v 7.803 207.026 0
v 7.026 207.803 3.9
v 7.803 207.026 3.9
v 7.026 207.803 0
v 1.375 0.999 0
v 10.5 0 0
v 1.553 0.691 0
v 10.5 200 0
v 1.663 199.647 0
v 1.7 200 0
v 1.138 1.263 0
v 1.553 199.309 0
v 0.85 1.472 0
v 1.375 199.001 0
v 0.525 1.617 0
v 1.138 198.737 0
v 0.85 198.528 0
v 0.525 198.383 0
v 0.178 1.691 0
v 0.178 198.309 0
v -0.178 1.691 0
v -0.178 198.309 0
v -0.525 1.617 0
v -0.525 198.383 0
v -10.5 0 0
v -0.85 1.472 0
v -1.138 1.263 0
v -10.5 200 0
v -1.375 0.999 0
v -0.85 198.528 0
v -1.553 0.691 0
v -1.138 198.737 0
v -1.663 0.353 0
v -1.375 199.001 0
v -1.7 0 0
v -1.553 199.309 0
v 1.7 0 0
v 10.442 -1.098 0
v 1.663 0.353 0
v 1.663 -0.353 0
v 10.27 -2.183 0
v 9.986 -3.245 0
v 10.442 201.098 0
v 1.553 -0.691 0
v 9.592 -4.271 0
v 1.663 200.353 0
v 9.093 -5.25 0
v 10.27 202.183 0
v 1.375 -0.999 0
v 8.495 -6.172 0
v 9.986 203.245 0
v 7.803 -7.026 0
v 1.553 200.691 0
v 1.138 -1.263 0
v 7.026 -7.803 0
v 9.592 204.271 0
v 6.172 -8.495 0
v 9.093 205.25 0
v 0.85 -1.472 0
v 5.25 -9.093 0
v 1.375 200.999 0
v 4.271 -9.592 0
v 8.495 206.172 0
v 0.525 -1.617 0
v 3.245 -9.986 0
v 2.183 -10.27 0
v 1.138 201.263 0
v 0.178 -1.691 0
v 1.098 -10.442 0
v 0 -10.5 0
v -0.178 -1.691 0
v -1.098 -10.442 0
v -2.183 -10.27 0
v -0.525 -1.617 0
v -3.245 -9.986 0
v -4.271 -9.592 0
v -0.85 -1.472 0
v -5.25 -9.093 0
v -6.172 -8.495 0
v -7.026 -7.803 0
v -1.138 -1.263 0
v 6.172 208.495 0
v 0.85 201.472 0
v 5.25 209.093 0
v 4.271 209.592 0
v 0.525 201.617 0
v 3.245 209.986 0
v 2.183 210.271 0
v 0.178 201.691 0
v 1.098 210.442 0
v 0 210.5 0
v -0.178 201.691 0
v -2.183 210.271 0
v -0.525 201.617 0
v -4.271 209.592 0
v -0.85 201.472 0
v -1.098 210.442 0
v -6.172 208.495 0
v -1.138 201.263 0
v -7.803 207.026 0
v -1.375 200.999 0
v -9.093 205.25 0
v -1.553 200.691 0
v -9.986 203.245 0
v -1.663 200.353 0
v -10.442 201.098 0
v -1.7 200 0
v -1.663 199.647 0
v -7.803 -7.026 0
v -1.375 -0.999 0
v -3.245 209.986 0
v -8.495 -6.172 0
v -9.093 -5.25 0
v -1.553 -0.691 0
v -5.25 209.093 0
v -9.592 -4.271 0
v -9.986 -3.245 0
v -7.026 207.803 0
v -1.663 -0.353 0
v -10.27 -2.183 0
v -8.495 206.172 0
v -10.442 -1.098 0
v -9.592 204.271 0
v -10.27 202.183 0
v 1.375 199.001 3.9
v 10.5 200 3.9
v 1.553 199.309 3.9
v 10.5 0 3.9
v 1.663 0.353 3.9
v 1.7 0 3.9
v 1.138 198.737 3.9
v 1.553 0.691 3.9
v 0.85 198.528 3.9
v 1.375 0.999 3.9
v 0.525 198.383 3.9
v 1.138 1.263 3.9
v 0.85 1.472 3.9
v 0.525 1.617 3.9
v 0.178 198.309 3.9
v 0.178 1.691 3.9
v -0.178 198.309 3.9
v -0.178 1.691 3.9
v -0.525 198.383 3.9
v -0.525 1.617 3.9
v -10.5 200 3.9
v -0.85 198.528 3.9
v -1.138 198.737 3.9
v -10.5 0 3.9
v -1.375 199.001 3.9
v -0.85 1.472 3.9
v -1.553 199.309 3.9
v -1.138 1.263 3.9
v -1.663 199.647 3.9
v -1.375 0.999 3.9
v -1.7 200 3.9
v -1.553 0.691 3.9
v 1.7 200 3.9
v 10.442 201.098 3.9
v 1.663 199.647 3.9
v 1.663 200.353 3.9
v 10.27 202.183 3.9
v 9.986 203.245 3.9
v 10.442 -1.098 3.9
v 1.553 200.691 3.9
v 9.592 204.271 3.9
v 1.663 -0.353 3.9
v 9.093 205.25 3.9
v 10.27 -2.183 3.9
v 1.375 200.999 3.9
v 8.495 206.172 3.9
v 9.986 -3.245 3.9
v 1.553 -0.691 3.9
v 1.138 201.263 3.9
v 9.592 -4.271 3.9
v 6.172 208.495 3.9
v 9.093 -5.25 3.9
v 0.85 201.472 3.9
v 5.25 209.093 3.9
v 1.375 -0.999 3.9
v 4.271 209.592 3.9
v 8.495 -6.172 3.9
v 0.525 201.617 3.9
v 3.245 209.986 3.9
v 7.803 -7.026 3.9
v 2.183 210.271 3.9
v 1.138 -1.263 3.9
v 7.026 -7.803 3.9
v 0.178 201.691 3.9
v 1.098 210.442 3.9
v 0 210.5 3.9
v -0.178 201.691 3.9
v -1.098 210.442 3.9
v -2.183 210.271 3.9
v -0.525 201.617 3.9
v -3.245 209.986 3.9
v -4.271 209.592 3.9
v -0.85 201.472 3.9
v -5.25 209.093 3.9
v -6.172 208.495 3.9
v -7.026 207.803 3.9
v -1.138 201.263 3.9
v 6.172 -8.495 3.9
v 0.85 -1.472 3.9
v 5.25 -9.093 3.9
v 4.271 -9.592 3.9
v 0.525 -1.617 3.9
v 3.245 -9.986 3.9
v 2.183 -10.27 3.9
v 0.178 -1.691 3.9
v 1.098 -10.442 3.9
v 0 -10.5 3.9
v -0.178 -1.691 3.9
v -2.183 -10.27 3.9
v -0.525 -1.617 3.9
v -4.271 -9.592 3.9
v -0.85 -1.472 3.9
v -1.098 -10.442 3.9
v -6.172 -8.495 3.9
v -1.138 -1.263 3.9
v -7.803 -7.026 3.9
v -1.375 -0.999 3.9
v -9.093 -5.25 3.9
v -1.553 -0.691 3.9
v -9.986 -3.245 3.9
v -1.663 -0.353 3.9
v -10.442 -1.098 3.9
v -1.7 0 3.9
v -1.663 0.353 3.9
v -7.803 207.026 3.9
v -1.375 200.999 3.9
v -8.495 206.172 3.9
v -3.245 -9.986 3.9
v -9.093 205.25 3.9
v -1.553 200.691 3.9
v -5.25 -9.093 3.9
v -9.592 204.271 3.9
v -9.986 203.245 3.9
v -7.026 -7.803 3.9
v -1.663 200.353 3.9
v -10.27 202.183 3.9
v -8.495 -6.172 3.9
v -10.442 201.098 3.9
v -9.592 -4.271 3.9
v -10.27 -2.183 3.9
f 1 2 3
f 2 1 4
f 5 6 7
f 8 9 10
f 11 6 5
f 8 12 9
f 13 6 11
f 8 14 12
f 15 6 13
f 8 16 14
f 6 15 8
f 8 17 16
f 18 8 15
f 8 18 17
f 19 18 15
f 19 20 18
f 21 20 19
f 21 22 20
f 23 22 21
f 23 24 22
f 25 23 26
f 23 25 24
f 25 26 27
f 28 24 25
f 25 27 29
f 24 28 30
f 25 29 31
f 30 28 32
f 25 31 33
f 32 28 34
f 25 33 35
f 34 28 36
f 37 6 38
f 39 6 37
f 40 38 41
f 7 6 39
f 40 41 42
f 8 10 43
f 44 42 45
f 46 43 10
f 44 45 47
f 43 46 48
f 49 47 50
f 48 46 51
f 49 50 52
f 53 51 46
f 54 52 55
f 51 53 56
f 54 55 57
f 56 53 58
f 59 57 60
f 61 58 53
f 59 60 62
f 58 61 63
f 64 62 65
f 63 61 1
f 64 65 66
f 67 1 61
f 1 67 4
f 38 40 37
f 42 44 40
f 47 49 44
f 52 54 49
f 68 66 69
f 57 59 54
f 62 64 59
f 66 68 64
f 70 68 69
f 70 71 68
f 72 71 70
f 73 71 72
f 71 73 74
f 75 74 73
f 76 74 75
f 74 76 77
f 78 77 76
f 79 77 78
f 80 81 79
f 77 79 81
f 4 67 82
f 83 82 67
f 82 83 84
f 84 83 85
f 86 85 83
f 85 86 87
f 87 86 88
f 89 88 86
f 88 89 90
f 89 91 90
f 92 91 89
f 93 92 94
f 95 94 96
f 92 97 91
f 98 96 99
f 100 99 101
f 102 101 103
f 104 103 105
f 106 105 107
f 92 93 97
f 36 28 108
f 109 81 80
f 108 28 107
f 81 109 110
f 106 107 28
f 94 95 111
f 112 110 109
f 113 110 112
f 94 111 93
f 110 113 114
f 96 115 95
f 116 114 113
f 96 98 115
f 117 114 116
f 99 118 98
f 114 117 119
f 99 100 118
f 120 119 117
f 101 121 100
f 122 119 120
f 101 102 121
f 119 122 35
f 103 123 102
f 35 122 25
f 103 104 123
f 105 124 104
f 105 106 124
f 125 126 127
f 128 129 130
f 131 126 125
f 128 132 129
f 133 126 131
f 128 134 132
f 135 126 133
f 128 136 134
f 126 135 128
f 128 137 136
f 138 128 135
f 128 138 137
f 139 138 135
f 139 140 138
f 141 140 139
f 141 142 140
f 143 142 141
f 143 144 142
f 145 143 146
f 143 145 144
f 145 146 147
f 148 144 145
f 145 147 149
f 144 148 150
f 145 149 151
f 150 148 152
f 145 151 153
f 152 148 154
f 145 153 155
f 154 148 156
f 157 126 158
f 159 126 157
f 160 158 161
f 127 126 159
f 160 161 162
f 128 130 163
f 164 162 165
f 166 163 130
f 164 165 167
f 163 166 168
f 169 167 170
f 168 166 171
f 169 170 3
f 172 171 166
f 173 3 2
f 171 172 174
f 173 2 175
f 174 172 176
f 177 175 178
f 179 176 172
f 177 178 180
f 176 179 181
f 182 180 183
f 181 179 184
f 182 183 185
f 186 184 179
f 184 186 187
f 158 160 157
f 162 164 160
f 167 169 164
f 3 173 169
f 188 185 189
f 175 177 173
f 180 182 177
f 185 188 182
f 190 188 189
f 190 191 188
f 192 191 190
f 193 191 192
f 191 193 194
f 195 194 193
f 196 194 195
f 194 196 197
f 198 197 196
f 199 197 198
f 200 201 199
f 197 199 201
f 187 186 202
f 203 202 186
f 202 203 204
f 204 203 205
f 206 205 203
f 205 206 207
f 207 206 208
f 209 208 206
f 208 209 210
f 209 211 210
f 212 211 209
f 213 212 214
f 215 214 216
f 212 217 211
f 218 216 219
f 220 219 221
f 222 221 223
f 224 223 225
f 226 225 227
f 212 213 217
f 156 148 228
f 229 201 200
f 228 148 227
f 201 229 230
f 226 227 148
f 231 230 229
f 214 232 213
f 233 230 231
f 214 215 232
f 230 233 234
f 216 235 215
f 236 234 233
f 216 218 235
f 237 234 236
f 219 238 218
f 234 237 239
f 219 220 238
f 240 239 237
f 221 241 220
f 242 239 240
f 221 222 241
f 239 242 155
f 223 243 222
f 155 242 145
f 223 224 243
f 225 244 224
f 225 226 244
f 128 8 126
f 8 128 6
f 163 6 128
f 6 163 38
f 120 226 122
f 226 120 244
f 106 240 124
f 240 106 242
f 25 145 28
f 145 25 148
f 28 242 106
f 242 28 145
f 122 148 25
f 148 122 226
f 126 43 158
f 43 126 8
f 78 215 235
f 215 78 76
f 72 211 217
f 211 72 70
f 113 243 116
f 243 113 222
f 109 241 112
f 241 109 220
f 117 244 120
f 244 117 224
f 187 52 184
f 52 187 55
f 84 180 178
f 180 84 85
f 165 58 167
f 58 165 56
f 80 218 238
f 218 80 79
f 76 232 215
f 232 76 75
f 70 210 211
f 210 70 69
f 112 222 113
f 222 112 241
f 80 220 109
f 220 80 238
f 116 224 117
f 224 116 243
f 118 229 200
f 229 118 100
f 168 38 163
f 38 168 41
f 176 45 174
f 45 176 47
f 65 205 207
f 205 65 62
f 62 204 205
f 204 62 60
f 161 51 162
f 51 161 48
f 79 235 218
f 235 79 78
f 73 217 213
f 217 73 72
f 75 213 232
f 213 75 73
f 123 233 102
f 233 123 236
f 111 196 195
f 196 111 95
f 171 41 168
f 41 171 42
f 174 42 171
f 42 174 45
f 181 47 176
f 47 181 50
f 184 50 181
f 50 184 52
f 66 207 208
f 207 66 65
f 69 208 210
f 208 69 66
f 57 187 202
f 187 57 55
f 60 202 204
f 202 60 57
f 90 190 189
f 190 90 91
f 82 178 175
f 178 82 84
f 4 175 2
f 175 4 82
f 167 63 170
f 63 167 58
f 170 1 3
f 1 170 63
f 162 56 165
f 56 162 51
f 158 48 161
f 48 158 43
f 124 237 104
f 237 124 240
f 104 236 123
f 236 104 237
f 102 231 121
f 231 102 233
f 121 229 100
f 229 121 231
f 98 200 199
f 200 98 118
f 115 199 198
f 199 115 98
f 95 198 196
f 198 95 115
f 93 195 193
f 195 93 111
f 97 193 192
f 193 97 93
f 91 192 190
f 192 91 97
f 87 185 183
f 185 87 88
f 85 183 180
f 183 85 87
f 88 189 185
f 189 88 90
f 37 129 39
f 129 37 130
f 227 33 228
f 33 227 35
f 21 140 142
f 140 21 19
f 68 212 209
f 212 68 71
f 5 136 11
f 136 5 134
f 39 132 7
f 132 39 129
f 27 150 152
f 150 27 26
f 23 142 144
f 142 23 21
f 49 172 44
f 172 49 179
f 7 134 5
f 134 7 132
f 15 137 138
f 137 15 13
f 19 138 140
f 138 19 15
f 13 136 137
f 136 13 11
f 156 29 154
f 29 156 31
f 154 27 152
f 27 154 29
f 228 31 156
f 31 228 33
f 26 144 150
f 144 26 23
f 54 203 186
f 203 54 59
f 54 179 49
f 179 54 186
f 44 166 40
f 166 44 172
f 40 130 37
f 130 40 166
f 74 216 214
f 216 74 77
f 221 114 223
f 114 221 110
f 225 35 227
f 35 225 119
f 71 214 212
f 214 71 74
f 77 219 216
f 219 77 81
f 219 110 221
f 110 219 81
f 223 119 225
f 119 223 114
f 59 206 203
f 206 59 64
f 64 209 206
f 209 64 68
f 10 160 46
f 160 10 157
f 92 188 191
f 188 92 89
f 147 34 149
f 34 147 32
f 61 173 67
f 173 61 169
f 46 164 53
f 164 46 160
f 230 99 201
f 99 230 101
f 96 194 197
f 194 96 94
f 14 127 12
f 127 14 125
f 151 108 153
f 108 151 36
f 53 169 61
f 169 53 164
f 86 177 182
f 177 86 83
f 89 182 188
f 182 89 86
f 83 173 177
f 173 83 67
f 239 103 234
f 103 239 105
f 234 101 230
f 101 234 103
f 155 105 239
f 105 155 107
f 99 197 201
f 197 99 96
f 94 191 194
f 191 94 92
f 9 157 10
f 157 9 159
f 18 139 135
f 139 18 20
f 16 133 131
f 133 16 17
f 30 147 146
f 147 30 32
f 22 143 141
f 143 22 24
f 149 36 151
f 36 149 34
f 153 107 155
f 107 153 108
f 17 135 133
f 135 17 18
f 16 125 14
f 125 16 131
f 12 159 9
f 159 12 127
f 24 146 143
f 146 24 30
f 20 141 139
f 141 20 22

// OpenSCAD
//general
$fn = 30;                  //convexity of general curved faces
thickness = 3.9;             //thickness of arm

//circular servo horn measurements
horn_diameter = 21;             //diameter of the circular horn
horn_center_hole = 9;          //diameter of the center hole (for screw)
horn_outer_hole_diameters = 1.9;  //diameter of the outer holes for screwing down horn
horn_outer_holes_center_dist = 7.8;//distance from center to the outer holes

//arm specific stuff
arm_length = 200;               //horn center to horn center distance for arm length

free_turning3mm = 3.4;          //diameter of hole for free turning motion

module horn(){
   cylinder(d=horn_center_hole, h=thickness);
   translate([horn_outer_holes_center_dist, 0, 0])
   cylinder(d=horn_outer_hole_diameters, h=thickness);
   translate([-horn_outer_holes_center_dist, 0, 0])
   cylinder(d=horn_outer_hole_diameters, h=thickness);
}

difference(){
   hull(){
      cylinder(d=horn_diameter,h=thickness, $fn = 60);
      translate([0,arm_length,0])
      cylinder(d=horn_diameter,h=thickness, $fn = 60);
   }
   cylinder(d=free_turning3mm,h=thickness);
   translate([0,arm_length,0])
   cylinder(d=free_turning3mm,h=thickness);
}
